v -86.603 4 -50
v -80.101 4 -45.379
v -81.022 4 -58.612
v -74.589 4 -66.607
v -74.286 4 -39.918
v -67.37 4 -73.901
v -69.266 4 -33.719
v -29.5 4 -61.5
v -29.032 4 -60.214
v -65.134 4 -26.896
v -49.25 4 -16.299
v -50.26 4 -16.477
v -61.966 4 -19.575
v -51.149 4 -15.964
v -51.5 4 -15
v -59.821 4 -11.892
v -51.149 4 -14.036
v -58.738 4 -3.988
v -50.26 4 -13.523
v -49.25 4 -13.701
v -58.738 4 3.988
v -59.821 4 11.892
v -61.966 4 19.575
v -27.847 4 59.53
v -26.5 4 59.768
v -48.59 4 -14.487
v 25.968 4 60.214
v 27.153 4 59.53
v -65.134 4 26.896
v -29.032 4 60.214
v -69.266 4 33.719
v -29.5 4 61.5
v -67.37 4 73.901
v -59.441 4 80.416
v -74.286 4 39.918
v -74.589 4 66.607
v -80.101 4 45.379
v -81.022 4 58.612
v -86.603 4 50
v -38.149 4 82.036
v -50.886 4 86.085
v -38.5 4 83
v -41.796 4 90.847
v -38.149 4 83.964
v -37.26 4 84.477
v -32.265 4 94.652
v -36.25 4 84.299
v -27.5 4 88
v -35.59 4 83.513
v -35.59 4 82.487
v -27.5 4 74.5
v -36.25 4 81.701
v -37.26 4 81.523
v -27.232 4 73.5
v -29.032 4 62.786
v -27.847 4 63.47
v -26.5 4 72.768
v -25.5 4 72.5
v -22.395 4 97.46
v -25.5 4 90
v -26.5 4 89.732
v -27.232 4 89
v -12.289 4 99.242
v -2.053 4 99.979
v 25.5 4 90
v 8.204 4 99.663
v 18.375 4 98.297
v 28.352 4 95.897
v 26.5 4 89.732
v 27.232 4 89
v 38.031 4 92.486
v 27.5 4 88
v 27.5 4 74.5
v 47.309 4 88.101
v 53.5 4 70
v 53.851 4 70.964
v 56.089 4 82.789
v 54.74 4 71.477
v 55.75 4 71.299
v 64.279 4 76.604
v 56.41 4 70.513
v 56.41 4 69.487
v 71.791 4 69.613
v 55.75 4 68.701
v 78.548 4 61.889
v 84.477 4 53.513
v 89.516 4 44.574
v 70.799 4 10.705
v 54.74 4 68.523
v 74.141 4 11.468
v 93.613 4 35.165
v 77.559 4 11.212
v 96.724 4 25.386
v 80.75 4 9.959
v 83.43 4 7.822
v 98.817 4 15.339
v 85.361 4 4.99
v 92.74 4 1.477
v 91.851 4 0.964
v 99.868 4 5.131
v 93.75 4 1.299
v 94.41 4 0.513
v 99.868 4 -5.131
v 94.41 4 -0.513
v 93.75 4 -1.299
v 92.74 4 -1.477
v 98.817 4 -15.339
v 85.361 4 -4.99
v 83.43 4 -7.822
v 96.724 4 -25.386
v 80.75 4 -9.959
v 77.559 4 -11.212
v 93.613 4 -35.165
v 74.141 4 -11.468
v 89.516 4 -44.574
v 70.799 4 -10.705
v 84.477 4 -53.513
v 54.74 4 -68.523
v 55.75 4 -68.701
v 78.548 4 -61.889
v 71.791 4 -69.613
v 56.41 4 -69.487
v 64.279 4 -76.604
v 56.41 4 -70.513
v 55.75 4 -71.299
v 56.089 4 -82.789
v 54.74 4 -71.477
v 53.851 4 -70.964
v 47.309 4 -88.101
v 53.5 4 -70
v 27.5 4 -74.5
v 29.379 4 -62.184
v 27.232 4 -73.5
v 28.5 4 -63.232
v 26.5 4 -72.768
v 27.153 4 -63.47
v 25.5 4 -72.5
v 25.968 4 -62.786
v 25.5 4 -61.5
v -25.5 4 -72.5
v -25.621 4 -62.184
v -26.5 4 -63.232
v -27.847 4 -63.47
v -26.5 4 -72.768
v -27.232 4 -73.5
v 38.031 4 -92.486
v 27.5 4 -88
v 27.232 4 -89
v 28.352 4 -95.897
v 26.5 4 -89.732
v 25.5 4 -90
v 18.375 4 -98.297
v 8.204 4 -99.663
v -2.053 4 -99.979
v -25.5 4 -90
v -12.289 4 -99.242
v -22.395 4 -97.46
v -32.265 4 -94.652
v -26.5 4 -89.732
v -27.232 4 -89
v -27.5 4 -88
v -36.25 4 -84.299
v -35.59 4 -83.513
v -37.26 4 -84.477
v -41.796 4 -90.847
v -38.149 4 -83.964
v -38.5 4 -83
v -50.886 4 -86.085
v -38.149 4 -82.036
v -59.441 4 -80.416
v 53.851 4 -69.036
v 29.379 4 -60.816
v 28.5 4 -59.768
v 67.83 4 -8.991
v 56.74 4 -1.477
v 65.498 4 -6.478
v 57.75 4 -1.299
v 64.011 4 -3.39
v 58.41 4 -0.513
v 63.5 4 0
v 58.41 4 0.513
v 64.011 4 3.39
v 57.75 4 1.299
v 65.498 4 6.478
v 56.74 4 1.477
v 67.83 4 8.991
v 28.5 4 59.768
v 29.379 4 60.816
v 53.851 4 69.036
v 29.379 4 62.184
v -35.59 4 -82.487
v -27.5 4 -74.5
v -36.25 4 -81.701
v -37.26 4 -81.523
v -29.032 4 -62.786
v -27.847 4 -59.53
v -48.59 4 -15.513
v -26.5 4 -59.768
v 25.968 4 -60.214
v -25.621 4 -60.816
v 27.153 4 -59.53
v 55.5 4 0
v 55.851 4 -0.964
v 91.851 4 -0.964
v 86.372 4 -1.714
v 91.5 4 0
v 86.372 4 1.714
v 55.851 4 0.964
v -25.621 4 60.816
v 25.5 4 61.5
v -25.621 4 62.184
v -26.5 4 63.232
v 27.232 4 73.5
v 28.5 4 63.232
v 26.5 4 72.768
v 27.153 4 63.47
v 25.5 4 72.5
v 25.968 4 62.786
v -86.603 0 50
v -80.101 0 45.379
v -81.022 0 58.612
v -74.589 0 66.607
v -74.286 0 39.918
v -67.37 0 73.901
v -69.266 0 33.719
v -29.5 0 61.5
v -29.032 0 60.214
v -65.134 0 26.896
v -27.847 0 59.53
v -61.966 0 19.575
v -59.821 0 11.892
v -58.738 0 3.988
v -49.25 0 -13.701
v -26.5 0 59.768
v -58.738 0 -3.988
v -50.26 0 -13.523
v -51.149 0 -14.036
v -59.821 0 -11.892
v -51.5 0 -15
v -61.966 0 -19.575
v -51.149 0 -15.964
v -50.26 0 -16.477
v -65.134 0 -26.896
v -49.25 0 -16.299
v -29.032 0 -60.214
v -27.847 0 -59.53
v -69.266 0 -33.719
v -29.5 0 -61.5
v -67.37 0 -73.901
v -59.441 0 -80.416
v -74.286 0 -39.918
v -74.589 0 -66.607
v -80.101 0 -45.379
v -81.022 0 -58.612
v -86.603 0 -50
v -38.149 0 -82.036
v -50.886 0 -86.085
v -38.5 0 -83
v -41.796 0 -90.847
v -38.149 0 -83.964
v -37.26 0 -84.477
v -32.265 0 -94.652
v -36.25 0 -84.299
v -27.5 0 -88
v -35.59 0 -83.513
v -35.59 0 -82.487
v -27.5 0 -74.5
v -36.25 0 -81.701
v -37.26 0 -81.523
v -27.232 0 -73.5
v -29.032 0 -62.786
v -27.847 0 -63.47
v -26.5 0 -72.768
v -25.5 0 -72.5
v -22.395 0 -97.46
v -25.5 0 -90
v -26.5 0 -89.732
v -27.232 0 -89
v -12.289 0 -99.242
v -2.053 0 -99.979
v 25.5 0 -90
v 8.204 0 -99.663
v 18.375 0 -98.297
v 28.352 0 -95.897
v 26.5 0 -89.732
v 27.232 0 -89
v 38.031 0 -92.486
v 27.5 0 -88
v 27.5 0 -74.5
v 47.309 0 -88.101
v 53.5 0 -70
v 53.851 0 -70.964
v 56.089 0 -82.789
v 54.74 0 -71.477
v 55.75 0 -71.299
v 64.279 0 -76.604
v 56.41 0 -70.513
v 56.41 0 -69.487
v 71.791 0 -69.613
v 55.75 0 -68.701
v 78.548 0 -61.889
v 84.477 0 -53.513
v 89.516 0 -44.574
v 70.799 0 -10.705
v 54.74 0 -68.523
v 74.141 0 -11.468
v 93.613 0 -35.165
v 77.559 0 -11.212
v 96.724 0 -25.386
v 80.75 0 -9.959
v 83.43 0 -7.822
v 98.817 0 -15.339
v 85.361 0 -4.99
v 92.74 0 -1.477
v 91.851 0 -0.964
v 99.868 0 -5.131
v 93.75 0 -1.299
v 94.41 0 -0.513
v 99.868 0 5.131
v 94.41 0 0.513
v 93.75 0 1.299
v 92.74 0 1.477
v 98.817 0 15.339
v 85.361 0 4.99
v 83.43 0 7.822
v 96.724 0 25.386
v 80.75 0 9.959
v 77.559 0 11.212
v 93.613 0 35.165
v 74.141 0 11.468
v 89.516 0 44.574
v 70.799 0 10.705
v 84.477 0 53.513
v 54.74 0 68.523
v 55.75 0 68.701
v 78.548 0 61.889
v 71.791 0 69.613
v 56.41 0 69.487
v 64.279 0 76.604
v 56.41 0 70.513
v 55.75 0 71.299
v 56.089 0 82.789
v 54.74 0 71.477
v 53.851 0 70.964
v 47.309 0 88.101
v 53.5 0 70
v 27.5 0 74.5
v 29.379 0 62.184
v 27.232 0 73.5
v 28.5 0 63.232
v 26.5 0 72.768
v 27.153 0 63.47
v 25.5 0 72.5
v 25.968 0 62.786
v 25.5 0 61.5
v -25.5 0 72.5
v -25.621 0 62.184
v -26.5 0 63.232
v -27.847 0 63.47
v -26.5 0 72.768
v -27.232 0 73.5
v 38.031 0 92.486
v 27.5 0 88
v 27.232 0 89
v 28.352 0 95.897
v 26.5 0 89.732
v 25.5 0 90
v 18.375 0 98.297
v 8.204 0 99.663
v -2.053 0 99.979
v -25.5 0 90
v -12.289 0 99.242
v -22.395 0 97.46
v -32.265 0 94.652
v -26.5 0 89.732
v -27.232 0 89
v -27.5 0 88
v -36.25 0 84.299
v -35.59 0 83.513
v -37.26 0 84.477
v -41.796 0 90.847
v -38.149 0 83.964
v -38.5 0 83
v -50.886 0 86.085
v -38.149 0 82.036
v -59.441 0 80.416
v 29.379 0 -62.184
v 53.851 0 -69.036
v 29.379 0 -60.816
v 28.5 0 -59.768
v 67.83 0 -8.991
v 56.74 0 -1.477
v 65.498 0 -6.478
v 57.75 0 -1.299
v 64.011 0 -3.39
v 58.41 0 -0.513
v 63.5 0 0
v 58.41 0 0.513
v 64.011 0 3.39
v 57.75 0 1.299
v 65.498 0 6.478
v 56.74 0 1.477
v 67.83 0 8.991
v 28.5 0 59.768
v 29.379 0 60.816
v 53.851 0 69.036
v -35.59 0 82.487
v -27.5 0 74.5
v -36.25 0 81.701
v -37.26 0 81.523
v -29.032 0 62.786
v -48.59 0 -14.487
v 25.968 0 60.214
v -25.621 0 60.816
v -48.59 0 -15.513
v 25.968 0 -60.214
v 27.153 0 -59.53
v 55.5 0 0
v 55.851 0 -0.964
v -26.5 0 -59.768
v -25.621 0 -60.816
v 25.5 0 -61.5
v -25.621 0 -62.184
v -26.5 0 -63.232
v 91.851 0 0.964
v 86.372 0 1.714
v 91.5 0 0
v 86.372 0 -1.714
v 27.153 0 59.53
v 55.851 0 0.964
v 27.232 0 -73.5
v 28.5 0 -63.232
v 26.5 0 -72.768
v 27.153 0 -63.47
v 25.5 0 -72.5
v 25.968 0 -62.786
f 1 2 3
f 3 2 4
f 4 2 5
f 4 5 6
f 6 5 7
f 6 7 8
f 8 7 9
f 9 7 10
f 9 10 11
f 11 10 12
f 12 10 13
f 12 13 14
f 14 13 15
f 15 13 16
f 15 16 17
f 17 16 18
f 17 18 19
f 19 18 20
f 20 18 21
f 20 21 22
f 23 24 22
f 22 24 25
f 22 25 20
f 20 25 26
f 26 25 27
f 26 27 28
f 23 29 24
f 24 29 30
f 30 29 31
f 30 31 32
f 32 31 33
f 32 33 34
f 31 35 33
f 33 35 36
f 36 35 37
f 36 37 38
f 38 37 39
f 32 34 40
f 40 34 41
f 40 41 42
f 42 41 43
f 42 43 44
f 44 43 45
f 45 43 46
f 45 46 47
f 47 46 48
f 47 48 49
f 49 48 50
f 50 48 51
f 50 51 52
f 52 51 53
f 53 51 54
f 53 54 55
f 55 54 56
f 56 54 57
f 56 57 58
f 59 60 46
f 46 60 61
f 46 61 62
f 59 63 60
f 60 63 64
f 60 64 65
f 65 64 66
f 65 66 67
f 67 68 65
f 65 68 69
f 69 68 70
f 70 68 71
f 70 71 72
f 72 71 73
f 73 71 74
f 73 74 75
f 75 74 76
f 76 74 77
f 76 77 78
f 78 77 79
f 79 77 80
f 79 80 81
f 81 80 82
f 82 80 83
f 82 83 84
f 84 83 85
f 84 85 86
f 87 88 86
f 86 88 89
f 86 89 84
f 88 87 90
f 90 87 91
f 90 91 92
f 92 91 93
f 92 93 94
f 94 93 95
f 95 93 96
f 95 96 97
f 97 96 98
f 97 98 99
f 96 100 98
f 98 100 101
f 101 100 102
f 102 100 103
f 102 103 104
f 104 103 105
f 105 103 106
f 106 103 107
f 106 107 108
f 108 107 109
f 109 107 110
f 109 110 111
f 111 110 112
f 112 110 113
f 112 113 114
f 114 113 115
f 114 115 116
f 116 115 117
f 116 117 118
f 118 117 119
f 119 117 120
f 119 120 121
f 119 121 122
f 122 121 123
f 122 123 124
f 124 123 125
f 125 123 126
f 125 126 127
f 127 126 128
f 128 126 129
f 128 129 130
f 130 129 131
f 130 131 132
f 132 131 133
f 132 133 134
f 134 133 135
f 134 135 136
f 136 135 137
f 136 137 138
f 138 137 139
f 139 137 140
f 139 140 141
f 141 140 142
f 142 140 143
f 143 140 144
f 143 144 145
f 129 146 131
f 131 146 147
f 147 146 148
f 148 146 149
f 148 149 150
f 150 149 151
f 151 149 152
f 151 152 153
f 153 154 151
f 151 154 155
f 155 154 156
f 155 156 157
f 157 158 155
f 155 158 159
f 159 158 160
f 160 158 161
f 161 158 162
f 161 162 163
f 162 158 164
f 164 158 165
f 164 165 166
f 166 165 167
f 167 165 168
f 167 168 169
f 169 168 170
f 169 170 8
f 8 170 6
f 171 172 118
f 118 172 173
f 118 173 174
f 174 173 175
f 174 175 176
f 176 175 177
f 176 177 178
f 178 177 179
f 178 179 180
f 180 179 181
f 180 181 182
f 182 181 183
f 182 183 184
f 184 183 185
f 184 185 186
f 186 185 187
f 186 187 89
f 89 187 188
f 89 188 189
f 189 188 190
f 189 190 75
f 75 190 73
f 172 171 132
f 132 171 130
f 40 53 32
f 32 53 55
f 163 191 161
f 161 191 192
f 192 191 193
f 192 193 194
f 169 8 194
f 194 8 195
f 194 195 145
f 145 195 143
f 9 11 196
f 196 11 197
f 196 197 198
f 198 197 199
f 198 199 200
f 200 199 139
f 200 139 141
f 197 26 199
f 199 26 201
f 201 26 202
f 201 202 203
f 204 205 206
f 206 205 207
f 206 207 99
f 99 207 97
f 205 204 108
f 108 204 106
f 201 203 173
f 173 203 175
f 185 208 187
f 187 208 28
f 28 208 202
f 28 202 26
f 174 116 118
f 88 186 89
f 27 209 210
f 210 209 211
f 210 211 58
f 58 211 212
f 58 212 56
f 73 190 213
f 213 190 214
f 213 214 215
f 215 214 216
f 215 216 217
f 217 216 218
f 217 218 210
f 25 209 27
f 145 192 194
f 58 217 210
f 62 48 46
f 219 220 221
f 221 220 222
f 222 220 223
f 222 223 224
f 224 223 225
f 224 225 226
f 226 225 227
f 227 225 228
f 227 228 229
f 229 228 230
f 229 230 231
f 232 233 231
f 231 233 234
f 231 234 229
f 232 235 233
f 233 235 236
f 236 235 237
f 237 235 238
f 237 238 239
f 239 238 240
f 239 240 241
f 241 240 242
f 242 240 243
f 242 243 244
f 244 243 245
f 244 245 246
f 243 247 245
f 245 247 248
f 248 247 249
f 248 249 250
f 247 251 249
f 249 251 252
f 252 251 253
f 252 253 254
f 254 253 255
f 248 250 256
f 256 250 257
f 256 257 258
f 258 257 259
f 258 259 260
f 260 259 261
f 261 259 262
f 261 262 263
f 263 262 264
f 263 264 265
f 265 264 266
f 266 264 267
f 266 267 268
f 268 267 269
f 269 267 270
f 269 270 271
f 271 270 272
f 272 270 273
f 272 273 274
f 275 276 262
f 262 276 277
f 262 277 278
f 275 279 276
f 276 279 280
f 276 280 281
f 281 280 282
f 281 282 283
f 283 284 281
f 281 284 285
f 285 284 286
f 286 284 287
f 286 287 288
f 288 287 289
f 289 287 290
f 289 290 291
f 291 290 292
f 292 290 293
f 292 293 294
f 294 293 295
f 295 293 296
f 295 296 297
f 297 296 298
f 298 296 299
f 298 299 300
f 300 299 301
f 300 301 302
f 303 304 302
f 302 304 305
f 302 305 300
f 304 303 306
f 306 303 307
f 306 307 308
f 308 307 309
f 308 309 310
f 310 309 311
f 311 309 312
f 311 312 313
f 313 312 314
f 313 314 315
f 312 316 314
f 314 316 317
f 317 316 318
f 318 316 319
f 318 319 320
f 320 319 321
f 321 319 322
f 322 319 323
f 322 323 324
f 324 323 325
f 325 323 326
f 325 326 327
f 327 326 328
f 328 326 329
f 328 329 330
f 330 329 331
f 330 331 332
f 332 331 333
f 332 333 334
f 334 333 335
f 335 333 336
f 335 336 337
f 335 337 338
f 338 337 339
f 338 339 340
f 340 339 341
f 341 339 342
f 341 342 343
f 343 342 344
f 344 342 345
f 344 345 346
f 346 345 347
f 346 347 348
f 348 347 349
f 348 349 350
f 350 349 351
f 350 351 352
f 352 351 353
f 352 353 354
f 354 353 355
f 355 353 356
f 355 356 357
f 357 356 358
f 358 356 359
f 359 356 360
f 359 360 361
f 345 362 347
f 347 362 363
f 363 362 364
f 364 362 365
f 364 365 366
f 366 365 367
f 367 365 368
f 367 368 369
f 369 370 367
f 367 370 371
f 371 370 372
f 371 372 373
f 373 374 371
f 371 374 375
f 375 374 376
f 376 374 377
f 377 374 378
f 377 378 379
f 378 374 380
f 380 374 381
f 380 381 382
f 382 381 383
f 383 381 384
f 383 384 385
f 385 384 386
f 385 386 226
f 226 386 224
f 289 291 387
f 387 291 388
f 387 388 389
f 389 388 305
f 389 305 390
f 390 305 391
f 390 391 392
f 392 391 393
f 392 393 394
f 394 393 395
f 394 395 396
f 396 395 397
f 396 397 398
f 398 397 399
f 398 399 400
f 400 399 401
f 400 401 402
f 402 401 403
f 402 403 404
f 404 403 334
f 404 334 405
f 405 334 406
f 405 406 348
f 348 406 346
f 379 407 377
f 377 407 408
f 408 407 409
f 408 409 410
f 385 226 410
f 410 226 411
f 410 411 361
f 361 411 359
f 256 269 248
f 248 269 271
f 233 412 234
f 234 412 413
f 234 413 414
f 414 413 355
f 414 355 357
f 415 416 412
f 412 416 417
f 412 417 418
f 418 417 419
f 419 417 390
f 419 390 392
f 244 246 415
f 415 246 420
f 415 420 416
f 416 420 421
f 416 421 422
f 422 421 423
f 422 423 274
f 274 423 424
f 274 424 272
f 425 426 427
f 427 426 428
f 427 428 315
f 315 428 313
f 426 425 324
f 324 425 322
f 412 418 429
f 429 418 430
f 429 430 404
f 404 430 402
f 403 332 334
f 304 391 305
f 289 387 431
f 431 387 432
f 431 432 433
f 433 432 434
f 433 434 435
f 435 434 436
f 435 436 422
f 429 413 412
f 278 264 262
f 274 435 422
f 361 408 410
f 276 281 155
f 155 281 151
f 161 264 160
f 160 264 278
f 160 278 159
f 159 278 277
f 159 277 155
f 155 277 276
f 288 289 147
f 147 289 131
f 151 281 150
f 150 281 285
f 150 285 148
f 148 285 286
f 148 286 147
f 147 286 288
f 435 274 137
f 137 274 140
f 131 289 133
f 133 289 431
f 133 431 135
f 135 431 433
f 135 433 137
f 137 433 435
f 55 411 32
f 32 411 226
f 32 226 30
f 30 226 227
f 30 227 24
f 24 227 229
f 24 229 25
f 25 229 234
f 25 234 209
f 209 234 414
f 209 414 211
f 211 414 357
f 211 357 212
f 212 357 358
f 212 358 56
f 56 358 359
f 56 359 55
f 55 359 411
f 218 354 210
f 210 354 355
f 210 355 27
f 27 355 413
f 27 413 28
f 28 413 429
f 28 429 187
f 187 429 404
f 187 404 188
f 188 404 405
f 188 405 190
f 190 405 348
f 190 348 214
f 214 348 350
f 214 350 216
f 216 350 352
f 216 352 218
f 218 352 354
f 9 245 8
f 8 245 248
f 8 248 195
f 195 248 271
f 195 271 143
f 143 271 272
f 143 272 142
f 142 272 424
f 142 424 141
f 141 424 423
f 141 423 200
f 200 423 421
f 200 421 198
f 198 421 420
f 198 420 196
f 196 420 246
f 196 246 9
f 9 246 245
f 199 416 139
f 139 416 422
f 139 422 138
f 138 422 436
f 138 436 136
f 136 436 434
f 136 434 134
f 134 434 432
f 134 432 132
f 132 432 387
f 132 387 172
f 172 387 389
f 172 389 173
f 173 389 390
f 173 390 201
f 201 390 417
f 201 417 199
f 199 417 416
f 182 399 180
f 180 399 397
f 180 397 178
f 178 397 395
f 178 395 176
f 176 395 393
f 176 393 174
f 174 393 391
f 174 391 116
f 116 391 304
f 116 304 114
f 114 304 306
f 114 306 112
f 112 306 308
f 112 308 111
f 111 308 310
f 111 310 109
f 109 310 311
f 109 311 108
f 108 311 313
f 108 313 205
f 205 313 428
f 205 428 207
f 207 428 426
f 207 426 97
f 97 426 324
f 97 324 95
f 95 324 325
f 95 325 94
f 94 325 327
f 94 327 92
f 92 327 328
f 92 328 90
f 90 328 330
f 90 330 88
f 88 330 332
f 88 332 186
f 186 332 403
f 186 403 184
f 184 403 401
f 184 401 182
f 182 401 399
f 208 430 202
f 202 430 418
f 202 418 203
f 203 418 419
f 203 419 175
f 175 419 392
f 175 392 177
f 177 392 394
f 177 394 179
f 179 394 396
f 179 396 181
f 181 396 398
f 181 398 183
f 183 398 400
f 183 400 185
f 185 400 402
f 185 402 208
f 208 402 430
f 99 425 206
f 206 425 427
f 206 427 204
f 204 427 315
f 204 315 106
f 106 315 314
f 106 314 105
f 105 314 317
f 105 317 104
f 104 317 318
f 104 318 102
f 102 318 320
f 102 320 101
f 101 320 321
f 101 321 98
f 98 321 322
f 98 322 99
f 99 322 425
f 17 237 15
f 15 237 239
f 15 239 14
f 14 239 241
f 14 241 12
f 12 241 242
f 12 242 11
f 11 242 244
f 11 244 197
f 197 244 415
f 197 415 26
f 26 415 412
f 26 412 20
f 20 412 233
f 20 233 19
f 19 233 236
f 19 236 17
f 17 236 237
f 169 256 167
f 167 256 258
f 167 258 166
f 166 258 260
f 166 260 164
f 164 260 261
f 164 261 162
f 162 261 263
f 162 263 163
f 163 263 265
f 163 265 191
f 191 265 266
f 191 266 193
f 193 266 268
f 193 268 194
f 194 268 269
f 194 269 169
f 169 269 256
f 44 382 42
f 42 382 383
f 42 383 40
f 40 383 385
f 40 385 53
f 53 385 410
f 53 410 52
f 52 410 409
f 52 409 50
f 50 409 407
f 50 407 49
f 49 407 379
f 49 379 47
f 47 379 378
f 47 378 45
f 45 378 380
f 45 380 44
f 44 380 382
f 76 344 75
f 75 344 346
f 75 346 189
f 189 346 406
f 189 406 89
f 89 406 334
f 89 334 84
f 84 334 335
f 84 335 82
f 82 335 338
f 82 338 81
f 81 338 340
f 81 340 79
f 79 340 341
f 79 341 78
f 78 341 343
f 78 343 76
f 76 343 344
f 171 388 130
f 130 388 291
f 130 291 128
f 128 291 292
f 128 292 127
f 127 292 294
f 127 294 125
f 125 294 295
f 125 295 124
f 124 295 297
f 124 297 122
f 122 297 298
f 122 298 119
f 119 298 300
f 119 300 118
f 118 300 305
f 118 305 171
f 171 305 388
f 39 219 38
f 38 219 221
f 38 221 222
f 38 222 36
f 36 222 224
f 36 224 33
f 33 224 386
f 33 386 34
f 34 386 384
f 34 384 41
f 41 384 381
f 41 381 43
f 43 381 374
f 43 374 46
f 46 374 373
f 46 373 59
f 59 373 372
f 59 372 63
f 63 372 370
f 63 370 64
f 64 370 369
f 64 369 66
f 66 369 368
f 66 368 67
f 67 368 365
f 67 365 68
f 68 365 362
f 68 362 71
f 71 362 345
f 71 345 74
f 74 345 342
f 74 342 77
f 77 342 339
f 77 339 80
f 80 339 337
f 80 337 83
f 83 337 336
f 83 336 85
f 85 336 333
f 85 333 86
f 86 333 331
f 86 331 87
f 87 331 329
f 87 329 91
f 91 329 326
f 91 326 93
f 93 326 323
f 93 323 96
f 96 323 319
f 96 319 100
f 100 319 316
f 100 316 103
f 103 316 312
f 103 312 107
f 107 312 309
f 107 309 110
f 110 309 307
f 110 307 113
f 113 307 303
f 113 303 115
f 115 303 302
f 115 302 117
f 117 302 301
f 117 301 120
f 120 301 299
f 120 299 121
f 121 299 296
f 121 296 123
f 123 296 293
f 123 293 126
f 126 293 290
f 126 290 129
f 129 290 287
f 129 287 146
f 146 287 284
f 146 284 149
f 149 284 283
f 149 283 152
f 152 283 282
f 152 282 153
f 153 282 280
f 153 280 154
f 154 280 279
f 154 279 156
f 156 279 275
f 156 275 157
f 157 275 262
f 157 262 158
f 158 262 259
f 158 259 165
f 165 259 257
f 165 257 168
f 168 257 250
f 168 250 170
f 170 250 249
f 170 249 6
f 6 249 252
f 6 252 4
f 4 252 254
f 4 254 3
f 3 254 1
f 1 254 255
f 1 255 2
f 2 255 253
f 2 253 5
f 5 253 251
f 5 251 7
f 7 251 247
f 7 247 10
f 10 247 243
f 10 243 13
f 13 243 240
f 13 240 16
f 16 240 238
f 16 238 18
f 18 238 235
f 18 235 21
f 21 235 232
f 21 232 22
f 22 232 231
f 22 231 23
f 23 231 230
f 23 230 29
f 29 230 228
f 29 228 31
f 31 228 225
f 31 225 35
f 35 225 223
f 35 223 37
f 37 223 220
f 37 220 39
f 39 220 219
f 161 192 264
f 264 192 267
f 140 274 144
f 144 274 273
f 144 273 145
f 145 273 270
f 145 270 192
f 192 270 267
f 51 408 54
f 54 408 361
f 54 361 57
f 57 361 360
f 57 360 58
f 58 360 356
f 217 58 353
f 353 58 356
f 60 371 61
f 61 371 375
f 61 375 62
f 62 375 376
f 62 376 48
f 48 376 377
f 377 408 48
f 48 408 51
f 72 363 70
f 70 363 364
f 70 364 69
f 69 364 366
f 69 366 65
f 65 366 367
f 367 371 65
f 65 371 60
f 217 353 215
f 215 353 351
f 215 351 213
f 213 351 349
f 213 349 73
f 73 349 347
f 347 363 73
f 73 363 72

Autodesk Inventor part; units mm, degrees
ref_plane "YZ Plane" through (0, 0, 0) normal (1, 0, 0) x (0, 1, 0)
ref_plane "XZ Plane" through (0, 0, 0) normal (0, 1, 0) x (-1, 0, 0)
ref_plane "XY Plane" through (0, 0, 0) normal (0, 0, 1) x (1, 0, 0)
sketch "Skizze1" plane through (0, 0, 0) normal (0, 1, 0) x (-1, 0, 0)
  arc A0 (86.6025, 50) -> (86.6025, -50) centre (0, 0) ccw
  arc A1 (86.6025, 50) -> (86.6025, -50) centre (117.2454, 0) ccw
  line L0 (27.5, 90) -> (-27.5, 90)
  line L1 (-27.5, 90) -> (-27.5, 72.5)
  line L2 (-27.5, 72.5) -> (27.5, 72.5)
  line L3 (27.5, 72.5) -> (27.5, 90)
  line L4 (27.5, -72.5) -> (-27.5, -72.5)
  line L5 (-27.5, -72.5) -> (-27.5, -90)
  line L6 (-27.5, -90) -> (27.5, -90)
  line L7 (27.5, -90) -> (27.5, -72.5)
  circle A2 centre (91, 0) radius 32
  circle A3 centre (27.5, 61.5) radius 2
  circle A4 centre (-27.5, 61.5) radius 2
  circle A5 centre (27.5, -61.5) radius 2
  circle A6 centre (-27.5, -61.5) radius 2
  circle A7 centre (-75, 0) radius 11.5
  circle A8 centre (-57, 0) radius 1.5
  circle A9 centre (-93, 0) radius 1.5
  circle A10 centre (50, -15) radius 1.5
  circle A11 centre (37, -83) radius 1.5
  circle A12 centre (37, 83) radius 1.5
  circle A13 centre (-55, 70) radius 1.5
  circle A14 centre (-55, -70) radius 1.5
  point P0 (58.6025, 0)
  point P1 (27.5, -81.25)
  dimension "d0" = 100
  dimension "d1" = 100
  dimension "d2" = 17.5
  dimension "d3" = 28
  dimension "d4" = 55
  dimension "d5" = 17.5
  dimension "d7" = 72.5
  dimension "d8" = 72.5
  dimension "d9" = 27.5
  dimension "d12" = 64
  dimension "d13" = 4
  dimension "d14" = 4
  dimension "d15" = 4
  dimension "d16" = 4
  dimension "d19" = 11
  dimension "d23" = 11
  dimension "d25" = 27.5
  dimension "d26" = 27.5
  dimension "d43" = 23
  dimension "d48" = 75
  dimension "d49" = 3
  dimension "d50" = 3
  dimension "d51" = 36
  dimension "d52" = 18
  dimension "d95" = 3
  dimension "d96" = 3
  dimension "d97" = 3
  dimension "d98" = 3
  dimension "d99" = 3
  dimension "d100" = 70
  dimension "d101" = 70
  dimension "d102" = 55
  dimension "d103" = 83
  dimension "d104" = 83
  dimension "d105" = 37
  dimension "d106" = 50
  dimension "d108" = 15
extrude "Extrusion1" add sketch "Skizze1" along normal blind 4 contours A1 A0
fillet "Rundung1" radius 2 8 edges at (-27.5, 2, 72.5) (-27.5, 2, 90) (27.5, 2, 90) (27.5, 2, 72.5) (-27.5, 2, -72.5) (27.5, 2, -72.5) (27.5, 2, -90) (-27.5, 2, -90)
equation "\"d26\" = d25"
properties part number "base plate"
